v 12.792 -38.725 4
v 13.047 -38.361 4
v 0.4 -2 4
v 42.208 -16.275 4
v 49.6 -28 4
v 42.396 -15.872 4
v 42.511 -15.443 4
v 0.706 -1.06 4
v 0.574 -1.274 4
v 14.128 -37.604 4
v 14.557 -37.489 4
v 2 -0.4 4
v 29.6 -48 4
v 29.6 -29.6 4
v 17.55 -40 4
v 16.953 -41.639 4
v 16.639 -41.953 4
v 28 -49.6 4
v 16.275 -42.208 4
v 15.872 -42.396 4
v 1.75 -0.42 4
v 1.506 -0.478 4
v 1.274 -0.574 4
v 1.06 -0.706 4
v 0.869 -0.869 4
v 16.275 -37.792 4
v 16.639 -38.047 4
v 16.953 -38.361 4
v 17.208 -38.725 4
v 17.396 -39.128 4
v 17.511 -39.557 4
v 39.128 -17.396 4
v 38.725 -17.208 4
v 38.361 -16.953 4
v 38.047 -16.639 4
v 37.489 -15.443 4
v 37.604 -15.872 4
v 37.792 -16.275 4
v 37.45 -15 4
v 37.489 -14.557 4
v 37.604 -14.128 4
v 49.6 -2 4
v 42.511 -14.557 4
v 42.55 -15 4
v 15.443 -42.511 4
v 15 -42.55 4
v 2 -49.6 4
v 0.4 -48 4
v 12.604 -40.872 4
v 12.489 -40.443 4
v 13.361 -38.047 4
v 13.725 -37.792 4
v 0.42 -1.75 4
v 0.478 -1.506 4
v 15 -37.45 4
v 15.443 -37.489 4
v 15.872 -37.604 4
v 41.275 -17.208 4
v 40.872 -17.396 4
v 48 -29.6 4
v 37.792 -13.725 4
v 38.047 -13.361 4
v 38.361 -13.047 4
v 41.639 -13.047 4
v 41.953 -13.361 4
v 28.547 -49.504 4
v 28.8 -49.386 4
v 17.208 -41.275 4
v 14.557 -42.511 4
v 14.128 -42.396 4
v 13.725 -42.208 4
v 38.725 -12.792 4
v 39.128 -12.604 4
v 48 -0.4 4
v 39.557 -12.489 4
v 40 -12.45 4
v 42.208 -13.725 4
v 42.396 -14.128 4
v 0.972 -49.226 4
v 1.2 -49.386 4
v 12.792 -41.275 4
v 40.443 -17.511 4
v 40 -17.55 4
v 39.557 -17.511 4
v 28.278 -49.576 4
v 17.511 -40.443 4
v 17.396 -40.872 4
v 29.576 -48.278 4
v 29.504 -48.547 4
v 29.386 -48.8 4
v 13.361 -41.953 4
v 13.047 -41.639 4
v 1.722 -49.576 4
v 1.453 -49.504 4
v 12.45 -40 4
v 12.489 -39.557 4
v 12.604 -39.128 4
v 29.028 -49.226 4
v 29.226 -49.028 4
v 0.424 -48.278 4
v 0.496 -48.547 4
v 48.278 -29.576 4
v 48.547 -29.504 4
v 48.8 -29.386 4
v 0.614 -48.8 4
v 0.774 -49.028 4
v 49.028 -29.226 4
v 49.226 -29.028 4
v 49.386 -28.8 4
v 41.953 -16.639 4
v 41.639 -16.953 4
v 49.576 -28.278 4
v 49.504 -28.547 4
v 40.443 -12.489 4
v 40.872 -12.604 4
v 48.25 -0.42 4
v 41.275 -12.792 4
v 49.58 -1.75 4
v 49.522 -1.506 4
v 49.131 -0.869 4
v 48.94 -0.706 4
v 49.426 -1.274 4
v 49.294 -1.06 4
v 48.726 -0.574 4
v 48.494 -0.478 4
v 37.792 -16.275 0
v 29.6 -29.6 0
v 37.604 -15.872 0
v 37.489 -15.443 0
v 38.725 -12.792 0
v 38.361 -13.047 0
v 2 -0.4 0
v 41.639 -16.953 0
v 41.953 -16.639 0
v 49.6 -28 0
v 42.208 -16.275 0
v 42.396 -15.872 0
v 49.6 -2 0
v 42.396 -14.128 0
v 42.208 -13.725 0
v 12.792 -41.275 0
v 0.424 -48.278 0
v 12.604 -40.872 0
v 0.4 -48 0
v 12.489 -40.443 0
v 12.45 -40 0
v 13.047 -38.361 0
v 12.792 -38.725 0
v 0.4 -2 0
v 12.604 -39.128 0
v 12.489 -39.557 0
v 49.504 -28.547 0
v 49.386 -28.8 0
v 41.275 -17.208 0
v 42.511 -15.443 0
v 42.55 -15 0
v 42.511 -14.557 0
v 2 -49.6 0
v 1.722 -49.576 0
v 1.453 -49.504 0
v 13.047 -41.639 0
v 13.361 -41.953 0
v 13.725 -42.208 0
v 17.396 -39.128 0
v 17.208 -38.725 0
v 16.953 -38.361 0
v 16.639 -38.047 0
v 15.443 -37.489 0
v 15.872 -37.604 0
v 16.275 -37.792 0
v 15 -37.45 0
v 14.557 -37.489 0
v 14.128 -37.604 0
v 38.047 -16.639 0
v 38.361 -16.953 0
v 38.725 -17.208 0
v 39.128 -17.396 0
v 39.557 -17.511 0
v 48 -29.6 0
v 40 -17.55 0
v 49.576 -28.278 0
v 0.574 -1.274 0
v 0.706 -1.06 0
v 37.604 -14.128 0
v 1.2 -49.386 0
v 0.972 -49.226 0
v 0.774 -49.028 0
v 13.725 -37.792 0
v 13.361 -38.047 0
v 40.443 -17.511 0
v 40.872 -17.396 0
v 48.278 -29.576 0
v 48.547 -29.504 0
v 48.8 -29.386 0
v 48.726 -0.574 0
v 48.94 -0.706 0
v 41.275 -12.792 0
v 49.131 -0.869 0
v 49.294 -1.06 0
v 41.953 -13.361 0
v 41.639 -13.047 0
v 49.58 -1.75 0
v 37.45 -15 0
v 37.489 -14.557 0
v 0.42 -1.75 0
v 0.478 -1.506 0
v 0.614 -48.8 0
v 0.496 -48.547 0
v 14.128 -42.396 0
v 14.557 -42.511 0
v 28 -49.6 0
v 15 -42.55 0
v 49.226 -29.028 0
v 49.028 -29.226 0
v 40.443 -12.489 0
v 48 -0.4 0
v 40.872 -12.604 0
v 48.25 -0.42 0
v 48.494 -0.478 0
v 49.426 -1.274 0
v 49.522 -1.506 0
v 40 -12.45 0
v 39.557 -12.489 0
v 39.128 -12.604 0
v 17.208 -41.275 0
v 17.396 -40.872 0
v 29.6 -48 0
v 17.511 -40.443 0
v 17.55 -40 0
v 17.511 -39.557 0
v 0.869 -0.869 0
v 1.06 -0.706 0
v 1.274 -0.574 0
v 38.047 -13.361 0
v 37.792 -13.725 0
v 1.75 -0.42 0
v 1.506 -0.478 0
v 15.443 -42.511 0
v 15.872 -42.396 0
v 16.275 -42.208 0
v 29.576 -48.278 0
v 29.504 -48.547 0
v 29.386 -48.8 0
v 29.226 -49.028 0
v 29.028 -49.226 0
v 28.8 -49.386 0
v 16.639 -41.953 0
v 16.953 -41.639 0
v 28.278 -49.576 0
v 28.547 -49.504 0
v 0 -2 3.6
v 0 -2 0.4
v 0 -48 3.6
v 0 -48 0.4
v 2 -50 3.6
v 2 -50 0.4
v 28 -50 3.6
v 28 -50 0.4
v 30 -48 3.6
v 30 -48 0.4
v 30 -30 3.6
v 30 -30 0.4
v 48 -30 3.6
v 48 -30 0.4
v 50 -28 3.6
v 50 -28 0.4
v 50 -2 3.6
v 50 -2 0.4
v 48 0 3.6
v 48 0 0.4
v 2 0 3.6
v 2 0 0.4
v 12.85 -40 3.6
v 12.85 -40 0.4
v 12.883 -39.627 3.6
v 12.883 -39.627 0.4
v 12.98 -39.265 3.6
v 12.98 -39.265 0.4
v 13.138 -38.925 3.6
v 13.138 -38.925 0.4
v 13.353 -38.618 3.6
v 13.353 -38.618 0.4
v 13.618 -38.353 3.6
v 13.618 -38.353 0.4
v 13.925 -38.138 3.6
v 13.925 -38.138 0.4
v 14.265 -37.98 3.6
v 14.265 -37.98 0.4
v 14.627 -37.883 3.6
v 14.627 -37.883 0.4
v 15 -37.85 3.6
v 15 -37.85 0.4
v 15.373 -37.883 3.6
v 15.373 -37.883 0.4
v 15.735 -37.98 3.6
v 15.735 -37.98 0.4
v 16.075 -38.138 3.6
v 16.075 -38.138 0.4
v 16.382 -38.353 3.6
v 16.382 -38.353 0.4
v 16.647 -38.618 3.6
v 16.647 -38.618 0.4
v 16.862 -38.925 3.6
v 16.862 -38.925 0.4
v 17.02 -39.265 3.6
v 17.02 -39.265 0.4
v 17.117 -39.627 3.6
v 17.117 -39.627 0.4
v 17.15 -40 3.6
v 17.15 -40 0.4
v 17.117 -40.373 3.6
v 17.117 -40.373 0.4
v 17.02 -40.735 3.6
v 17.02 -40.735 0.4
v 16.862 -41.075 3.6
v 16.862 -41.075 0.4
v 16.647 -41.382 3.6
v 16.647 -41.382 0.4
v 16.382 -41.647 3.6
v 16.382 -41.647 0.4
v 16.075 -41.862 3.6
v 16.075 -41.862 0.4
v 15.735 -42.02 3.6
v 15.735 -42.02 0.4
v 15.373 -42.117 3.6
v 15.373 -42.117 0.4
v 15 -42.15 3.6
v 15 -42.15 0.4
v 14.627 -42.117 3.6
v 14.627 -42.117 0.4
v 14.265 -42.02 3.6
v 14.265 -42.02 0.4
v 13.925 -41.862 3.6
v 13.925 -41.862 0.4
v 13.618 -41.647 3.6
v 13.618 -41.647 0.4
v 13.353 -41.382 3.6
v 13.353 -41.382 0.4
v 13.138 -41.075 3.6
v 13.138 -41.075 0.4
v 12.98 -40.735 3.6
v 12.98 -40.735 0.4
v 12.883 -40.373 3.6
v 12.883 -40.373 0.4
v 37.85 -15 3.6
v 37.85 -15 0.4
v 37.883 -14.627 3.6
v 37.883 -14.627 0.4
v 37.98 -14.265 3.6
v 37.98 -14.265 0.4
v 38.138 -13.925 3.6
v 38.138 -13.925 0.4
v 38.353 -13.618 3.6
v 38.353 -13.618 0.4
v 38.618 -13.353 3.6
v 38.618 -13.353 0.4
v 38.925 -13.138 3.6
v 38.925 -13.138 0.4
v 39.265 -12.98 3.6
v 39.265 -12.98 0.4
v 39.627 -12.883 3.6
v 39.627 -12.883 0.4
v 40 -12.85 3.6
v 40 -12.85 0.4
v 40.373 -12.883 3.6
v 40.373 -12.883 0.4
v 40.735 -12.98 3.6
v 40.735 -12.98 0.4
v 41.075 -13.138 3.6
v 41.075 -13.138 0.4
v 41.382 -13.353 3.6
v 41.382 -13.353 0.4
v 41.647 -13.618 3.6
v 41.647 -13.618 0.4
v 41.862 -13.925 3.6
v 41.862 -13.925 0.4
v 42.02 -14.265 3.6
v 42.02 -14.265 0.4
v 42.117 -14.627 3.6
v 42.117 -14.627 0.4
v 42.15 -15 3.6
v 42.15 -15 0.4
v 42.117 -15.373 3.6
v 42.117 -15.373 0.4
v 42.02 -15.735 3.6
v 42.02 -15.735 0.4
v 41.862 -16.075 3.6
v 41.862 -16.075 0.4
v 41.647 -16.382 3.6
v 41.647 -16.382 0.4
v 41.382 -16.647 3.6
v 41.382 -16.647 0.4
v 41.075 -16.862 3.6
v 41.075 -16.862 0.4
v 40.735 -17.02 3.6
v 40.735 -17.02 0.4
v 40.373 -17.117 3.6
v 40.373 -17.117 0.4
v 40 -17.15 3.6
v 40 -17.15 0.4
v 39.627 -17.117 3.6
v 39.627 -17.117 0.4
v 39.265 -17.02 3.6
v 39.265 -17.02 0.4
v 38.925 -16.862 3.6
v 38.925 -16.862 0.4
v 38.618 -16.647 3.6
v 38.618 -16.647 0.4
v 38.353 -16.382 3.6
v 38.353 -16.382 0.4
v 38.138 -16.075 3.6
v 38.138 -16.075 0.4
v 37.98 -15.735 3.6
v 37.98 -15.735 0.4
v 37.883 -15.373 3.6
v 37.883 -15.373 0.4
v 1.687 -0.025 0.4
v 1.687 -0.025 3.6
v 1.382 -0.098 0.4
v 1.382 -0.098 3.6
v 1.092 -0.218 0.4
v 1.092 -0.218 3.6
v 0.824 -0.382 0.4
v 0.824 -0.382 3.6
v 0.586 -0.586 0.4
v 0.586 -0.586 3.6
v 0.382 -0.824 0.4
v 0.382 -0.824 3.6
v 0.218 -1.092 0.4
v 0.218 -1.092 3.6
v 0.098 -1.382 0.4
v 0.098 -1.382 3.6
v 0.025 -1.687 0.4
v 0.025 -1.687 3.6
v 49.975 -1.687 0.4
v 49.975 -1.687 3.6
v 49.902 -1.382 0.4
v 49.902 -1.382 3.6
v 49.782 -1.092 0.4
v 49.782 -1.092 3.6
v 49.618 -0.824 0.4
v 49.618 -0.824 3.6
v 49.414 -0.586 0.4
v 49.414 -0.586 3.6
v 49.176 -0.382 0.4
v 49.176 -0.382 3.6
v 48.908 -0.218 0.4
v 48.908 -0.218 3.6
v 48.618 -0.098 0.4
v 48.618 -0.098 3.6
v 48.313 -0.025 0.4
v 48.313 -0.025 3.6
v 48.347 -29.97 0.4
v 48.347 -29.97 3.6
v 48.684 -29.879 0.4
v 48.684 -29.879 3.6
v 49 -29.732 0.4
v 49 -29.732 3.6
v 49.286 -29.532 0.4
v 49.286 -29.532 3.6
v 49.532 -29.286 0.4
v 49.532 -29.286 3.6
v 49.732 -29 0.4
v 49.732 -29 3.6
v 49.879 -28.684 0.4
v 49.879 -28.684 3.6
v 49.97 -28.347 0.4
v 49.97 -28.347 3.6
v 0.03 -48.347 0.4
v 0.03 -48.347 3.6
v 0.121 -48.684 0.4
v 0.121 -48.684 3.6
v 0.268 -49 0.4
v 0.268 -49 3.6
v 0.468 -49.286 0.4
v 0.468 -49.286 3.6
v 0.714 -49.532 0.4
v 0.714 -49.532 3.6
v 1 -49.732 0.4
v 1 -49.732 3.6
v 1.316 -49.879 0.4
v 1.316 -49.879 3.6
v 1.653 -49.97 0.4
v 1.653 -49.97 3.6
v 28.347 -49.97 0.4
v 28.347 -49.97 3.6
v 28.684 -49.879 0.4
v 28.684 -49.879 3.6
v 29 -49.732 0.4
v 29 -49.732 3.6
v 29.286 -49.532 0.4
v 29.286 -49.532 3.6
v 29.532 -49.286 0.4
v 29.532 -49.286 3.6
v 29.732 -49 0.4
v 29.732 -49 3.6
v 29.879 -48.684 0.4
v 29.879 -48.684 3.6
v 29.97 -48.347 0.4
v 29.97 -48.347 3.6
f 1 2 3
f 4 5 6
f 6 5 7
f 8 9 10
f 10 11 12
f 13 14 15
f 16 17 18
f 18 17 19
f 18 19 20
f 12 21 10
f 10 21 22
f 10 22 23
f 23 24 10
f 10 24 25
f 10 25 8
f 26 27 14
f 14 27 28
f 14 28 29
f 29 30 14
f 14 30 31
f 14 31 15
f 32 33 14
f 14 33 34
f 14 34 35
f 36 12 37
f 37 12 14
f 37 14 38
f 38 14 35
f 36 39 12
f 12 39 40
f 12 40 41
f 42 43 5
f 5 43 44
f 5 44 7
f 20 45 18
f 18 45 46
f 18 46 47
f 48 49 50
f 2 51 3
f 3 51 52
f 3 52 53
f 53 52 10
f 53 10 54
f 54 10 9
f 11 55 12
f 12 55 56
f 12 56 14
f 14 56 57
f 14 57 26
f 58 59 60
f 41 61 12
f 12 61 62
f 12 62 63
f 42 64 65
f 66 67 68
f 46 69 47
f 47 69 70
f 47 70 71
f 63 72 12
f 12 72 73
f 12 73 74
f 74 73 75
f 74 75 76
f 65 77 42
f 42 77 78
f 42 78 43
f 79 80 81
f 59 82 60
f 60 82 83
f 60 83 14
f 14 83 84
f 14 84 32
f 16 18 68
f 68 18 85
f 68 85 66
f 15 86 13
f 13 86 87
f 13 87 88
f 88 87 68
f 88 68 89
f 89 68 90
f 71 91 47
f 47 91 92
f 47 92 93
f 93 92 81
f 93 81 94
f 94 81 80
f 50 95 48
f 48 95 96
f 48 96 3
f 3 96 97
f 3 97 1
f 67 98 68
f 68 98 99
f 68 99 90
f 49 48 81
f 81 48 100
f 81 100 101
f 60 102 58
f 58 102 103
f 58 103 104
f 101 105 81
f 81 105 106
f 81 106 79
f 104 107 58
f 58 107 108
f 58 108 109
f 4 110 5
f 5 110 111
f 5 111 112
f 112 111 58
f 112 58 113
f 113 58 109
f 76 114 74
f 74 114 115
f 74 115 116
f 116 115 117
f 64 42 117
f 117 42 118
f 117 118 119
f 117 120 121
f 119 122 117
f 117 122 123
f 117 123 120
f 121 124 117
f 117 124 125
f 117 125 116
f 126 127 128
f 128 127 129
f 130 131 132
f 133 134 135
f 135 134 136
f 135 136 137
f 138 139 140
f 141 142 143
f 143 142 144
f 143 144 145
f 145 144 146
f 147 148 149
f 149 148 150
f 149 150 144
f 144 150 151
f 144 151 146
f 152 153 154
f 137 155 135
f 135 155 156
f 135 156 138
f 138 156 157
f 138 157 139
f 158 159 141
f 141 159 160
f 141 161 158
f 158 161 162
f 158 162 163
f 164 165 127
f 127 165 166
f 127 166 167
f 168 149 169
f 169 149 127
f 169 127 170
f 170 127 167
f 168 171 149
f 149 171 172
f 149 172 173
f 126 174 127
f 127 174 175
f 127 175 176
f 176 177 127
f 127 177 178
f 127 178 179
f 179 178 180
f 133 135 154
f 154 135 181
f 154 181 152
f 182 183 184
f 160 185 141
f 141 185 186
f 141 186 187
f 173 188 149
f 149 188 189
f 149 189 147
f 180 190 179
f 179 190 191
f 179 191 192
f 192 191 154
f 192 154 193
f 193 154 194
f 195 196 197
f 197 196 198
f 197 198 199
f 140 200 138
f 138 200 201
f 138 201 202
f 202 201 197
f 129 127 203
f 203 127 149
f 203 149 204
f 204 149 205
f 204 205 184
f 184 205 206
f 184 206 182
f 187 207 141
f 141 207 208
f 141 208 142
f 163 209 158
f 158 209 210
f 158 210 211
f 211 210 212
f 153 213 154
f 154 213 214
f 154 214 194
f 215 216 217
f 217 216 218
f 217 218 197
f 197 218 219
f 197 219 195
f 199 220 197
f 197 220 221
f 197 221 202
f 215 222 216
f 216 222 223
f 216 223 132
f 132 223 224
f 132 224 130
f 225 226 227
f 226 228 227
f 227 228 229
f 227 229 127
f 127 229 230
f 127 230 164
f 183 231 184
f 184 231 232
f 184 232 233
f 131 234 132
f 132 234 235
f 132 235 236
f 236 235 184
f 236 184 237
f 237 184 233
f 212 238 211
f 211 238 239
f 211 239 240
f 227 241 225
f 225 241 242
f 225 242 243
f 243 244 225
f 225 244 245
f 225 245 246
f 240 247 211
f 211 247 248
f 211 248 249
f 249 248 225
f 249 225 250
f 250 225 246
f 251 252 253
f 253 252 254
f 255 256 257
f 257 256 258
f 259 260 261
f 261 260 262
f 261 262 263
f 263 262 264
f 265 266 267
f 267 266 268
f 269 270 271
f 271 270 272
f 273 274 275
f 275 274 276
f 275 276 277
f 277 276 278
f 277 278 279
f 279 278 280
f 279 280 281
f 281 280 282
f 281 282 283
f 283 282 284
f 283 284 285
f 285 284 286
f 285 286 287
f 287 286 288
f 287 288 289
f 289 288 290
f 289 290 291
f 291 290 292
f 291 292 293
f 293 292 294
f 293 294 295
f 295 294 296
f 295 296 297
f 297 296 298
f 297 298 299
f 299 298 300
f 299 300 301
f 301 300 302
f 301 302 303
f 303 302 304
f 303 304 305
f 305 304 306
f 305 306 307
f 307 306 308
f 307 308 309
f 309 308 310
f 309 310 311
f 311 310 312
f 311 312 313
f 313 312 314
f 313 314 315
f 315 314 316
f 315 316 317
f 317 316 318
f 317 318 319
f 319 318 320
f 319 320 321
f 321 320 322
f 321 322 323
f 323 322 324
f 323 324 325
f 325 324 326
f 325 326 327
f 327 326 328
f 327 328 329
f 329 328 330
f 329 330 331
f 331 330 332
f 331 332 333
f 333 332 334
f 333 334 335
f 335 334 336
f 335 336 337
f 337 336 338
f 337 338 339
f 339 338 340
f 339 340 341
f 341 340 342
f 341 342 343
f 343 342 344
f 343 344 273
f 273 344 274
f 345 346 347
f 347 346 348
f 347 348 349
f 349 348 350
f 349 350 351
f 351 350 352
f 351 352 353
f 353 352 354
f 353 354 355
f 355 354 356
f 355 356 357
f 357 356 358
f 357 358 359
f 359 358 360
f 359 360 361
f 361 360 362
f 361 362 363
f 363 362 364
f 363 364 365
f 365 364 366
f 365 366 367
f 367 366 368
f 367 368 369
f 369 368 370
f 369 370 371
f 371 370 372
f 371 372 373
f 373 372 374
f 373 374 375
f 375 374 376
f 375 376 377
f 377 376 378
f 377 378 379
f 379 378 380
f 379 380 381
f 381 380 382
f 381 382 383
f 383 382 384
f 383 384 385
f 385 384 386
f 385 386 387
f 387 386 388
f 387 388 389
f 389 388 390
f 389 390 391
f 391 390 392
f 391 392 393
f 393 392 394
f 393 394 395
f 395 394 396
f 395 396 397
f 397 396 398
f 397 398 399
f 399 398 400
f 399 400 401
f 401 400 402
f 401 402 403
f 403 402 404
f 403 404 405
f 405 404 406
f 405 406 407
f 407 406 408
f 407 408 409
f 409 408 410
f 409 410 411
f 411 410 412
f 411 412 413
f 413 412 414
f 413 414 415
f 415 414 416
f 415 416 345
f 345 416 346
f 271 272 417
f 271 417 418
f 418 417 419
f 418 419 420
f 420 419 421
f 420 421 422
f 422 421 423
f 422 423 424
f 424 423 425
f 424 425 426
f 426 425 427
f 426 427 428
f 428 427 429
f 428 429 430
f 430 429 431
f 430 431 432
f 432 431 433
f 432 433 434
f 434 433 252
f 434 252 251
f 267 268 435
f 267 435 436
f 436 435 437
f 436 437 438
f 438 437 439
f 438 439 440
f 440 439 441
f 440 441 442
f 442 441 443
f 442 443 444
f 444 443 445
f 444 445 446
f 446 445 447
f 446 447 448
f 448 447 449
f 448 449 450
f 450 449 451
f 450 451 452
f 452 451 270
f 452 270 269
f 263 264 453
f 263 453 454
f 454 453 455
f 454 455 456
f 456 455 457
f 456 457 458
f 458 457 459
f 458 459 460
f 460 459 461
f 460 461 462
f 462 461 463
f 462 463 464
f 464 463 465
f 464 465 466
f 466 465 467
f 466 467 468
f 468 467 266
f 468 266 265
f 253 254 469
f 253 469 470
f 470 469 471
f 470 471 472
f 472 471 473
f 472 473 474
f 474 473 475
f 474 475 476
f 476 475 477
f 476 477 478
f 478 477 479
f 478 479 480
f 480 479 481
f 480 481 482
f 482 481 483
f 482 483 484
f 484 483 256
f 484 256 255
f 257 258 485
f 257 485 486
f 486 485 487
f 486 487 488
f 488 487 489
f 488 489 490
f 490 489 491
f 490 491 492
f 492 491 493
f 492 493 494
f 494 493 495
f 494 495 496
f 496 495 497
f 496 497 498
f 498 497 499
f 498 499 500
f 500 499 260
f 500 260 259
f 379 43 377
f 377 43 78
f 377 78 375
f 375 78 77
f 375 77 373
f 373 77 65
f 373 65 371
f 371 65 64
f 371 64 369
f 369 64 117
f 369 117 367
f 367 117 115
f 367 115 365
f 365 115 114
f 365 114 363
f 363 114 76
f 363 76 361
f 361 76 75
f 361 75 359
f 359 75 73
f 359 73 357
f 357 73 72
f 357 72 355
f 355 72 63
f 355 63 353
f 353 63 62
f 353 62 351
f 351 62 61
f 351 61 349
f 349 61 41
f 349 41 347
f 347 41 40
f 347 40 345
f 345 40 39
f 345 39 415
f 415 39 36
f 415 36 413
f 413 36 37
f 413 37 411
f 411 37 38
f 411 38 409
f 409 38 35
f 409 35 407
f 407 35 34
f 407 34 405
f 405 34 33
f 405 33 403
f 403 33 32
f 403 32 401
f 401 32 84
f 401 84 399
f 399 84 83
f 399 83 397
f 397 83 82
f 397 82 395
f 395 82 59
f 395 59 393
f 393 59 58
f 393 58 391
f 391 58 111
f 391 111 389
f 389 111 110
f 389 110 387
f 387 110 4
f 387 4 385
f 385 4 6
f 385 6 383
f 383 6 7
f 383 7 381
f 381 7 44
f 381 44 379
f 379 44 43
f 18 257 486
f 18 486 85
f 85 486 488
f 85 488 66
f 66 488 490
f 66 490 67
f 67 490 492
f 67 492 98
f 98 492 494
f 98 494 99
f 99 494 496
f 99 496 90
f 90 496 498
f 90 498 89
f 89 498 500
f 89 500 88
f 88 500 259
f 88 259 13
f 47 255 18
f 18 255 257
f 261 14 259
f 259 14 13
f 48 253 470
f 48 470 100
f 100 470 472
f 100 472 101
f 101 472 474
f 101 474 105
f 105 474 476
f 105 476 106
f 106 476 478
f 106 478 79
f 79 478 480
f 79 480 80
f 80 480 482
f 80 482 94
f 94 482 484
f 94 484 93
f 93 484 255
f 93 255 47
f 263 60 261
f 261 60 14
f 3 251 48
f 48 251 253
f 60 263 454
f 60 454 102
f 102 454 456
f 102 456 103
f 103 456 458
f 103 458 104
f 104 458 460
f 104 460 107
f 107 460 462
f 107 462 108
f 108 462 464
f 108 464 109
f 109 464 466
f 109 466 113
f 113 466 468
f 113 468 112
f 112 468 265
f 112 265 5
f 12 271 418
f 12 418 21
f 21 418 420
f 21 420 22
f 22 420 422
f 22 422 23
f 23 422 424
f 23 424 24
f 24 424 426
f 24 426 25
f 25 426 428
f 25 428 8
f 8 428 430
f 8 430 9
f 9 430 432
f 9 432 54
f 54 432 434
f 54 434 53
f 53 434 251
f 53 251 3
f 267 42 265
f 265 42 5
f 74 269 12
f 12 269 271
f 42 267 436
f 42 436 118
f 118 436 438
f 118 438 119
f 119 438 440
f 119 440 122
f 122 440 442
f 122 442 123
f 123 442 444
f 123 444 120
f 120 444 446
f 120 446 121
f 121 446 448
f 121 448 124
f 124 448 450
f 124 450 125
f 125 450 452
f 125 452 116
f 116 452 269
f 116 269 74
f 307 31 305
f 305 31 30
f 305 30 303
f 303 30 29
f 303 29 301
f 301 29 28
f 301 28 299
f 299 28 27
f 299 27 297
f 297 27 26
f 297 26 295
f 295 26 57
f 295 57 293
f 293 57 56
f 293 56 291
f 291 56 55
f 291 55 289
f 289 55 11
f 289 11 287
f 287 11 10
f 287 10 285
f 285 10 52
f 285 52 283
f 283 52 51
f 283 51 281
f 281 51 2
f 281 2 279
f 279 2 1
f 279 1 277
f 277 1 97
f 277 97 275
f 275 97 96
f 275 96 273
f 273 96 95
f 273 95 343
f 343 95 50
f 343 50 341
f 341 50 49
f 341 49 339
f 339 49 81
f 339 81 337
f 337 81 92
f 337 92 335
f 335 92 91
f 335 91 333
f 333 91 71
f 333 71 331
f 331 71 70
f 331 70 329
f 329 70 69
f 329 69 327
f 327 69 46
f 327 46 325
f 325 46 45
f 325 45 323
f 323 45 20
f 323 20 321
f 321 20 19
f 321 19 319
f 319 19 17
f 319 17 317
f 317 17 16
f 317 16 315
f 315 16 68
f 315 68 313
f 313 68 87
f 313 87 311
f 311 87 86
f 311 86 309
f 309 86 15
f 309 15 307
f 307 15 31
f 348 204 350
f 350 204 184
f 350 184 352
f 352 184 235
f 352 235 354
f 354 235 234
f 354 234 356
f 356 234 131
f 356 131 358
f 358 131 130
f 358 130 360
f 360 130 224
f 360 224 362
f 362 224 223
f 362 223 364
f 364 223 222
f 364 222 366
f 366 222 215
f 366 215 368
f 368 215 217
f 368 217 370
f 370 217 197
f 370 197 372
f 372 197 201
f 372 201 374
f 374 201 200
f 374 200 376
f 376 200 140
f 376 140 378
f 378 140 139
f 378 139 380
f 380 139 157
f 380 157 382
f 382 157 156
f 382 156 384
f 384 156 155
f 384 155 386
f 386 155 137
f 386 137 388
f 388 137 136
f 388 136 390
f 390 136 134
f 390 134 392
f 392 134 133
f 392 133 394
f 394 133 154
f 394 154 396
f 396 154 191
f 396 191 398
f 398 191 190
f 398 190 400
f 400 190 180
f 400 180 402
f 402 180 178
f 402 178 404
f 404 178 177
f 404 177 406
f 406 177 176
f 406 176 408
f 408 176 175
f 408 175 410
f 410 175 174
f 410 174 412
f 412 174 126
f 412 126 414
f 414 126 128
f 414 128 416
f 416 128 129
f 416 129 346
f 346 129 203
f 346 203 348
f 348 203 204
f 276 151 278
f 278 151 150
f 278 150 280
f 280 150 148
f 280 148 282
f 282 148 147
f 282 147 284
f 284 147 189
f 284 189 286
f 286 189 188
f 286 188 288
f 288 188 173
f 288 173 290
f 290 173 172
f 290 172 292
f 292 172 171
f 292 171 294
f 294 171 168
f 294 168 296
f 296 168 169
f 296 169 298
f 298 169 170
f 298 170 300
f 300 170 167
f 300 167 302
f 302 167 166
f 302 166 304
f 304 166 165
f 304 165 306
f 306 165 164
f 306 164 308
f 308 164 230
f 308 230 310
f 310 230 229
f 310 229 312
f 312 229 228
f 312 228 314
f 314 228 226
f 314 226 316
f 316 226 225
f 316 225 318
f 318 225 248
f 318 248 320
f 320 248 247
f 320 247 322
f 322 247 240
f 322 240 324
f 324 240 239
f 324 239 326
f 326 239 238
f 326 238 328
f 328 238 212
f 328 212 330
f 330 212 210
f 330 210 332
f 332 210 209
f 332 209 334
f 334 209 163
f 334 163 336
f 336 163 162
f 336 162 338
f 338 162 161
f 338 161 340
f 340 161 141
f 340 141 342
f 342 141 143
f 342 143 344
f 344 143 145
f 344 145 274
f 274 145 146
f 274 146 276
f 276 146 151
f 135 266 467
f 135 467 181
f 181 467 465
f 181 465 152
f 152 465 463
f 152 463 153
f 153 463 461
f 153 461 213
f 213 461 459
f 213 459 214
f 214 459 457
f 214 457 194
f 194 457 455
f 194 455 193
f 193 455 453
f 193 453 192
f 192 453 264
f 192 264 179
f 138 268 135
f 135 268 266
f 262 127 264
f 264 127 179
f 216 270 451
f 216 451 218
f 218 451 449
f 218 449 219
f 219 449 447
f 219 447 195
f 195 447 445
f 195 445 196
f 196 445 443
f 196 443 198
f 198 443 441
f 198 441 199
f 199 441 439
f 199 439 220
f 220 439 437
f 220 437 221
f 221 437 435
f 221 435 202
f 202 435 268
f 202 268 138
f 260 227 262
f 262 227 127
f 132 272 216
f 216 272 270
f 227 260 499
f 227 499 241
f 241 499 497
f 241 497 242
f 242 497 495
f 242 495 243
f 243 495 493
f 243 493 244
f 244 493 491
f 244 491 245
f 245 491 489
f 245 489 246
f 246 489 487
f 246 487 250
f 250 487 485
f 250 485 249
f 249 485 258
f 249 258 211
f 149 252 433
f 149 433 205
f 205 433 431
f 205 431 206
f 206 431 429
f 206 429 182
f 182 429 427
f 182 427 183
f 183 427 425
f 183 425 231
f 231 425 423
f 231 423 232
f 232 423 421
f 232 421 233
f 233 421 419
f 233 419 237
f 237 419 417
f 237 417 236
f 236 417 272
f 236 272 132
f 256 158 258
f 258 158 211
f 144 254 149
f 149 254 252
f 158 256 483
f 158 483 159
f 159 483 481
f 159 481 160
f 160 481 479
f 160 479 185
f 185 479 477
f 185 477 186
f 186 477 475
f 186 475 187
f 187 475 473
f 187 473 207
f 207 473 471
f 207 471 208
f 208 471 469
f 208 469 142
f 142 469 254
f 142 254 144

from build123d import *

# Parameters (mm, degrees)
SKETCH1_R           = 2.15
BOSS_EXTRUDE1_DEPTH = 4
FILLET1_R           = 2
CHAMFER1_SIZE       = 0.4


with BuildPart() as part:
    # Sketch1 → Boss-Extrude1 (new body)
    with BuildSketch(Plane.XY):
        Polygon((0, -50), (30, -50), (30, -30), (50, -30), (50, 0), (0, 0), align=None)
        with Locations((15, -40)):
            Circle(SKETCH1_R, mode=Mode.SUBTRACT)
        with Locations((40, -15)):
            Circle(SKETCH1_R, mode=Mode.SUBTRACT)
    extrude(amount=BOSS_EXTRUDE1_DEPTH)

    # Fillet1
    fillet1_edges = [part.edges().sort_by_distance(p)[0] for p in [
        (0, 0, 2),
        (50, 0, 2),
        (50, -30, 2),
        (30, -50, 2),
        (0, -50, 2),
    ]]
    fillet(fillet1_edges, radius=FILLET1_R)

    # Chamfer1
    chamfer1_edges = [part.edges().sort_by_distance(p)[0] for p in [
        (39, -30, 4),
        (12.85, -40, 0),
        (12.85, -40, 4),
        (37.85, -15, 0),
        (37.85, -15, 4),
        (0, -25, 0),
        (0, -25, 4),
        (25, 0, 0),
        (50, -15, 0),
        (30, -39, 0),
        (15, -50, 0),
        (29.414213562, -49.414213562, 0),
        (0.585786438, -49.414213562, 0),
        (49.414213562, -29.414213562, 0),
        (49.414213562, -0.585786438, 0),
        (0.585786438, -0.585786438, 0),
        (25, 0, 4),
        (15, -50, 4),
        (30, -39, 4),
        (50, -15, 4),
        (29.414213562, -49.414213562, 4),
        (0.585786438, -49.414213562, 4),
        (49.414213562, -29.414213562, 4),
        (49.414213562, -0.585786438, 4),
        (0.585786438, -0.585786438, 4),
        (39, -30, 0),
    ]]
    chamfer(chamfer1_edges, length=CHAMFER1_SIZE)


solid = part.part
